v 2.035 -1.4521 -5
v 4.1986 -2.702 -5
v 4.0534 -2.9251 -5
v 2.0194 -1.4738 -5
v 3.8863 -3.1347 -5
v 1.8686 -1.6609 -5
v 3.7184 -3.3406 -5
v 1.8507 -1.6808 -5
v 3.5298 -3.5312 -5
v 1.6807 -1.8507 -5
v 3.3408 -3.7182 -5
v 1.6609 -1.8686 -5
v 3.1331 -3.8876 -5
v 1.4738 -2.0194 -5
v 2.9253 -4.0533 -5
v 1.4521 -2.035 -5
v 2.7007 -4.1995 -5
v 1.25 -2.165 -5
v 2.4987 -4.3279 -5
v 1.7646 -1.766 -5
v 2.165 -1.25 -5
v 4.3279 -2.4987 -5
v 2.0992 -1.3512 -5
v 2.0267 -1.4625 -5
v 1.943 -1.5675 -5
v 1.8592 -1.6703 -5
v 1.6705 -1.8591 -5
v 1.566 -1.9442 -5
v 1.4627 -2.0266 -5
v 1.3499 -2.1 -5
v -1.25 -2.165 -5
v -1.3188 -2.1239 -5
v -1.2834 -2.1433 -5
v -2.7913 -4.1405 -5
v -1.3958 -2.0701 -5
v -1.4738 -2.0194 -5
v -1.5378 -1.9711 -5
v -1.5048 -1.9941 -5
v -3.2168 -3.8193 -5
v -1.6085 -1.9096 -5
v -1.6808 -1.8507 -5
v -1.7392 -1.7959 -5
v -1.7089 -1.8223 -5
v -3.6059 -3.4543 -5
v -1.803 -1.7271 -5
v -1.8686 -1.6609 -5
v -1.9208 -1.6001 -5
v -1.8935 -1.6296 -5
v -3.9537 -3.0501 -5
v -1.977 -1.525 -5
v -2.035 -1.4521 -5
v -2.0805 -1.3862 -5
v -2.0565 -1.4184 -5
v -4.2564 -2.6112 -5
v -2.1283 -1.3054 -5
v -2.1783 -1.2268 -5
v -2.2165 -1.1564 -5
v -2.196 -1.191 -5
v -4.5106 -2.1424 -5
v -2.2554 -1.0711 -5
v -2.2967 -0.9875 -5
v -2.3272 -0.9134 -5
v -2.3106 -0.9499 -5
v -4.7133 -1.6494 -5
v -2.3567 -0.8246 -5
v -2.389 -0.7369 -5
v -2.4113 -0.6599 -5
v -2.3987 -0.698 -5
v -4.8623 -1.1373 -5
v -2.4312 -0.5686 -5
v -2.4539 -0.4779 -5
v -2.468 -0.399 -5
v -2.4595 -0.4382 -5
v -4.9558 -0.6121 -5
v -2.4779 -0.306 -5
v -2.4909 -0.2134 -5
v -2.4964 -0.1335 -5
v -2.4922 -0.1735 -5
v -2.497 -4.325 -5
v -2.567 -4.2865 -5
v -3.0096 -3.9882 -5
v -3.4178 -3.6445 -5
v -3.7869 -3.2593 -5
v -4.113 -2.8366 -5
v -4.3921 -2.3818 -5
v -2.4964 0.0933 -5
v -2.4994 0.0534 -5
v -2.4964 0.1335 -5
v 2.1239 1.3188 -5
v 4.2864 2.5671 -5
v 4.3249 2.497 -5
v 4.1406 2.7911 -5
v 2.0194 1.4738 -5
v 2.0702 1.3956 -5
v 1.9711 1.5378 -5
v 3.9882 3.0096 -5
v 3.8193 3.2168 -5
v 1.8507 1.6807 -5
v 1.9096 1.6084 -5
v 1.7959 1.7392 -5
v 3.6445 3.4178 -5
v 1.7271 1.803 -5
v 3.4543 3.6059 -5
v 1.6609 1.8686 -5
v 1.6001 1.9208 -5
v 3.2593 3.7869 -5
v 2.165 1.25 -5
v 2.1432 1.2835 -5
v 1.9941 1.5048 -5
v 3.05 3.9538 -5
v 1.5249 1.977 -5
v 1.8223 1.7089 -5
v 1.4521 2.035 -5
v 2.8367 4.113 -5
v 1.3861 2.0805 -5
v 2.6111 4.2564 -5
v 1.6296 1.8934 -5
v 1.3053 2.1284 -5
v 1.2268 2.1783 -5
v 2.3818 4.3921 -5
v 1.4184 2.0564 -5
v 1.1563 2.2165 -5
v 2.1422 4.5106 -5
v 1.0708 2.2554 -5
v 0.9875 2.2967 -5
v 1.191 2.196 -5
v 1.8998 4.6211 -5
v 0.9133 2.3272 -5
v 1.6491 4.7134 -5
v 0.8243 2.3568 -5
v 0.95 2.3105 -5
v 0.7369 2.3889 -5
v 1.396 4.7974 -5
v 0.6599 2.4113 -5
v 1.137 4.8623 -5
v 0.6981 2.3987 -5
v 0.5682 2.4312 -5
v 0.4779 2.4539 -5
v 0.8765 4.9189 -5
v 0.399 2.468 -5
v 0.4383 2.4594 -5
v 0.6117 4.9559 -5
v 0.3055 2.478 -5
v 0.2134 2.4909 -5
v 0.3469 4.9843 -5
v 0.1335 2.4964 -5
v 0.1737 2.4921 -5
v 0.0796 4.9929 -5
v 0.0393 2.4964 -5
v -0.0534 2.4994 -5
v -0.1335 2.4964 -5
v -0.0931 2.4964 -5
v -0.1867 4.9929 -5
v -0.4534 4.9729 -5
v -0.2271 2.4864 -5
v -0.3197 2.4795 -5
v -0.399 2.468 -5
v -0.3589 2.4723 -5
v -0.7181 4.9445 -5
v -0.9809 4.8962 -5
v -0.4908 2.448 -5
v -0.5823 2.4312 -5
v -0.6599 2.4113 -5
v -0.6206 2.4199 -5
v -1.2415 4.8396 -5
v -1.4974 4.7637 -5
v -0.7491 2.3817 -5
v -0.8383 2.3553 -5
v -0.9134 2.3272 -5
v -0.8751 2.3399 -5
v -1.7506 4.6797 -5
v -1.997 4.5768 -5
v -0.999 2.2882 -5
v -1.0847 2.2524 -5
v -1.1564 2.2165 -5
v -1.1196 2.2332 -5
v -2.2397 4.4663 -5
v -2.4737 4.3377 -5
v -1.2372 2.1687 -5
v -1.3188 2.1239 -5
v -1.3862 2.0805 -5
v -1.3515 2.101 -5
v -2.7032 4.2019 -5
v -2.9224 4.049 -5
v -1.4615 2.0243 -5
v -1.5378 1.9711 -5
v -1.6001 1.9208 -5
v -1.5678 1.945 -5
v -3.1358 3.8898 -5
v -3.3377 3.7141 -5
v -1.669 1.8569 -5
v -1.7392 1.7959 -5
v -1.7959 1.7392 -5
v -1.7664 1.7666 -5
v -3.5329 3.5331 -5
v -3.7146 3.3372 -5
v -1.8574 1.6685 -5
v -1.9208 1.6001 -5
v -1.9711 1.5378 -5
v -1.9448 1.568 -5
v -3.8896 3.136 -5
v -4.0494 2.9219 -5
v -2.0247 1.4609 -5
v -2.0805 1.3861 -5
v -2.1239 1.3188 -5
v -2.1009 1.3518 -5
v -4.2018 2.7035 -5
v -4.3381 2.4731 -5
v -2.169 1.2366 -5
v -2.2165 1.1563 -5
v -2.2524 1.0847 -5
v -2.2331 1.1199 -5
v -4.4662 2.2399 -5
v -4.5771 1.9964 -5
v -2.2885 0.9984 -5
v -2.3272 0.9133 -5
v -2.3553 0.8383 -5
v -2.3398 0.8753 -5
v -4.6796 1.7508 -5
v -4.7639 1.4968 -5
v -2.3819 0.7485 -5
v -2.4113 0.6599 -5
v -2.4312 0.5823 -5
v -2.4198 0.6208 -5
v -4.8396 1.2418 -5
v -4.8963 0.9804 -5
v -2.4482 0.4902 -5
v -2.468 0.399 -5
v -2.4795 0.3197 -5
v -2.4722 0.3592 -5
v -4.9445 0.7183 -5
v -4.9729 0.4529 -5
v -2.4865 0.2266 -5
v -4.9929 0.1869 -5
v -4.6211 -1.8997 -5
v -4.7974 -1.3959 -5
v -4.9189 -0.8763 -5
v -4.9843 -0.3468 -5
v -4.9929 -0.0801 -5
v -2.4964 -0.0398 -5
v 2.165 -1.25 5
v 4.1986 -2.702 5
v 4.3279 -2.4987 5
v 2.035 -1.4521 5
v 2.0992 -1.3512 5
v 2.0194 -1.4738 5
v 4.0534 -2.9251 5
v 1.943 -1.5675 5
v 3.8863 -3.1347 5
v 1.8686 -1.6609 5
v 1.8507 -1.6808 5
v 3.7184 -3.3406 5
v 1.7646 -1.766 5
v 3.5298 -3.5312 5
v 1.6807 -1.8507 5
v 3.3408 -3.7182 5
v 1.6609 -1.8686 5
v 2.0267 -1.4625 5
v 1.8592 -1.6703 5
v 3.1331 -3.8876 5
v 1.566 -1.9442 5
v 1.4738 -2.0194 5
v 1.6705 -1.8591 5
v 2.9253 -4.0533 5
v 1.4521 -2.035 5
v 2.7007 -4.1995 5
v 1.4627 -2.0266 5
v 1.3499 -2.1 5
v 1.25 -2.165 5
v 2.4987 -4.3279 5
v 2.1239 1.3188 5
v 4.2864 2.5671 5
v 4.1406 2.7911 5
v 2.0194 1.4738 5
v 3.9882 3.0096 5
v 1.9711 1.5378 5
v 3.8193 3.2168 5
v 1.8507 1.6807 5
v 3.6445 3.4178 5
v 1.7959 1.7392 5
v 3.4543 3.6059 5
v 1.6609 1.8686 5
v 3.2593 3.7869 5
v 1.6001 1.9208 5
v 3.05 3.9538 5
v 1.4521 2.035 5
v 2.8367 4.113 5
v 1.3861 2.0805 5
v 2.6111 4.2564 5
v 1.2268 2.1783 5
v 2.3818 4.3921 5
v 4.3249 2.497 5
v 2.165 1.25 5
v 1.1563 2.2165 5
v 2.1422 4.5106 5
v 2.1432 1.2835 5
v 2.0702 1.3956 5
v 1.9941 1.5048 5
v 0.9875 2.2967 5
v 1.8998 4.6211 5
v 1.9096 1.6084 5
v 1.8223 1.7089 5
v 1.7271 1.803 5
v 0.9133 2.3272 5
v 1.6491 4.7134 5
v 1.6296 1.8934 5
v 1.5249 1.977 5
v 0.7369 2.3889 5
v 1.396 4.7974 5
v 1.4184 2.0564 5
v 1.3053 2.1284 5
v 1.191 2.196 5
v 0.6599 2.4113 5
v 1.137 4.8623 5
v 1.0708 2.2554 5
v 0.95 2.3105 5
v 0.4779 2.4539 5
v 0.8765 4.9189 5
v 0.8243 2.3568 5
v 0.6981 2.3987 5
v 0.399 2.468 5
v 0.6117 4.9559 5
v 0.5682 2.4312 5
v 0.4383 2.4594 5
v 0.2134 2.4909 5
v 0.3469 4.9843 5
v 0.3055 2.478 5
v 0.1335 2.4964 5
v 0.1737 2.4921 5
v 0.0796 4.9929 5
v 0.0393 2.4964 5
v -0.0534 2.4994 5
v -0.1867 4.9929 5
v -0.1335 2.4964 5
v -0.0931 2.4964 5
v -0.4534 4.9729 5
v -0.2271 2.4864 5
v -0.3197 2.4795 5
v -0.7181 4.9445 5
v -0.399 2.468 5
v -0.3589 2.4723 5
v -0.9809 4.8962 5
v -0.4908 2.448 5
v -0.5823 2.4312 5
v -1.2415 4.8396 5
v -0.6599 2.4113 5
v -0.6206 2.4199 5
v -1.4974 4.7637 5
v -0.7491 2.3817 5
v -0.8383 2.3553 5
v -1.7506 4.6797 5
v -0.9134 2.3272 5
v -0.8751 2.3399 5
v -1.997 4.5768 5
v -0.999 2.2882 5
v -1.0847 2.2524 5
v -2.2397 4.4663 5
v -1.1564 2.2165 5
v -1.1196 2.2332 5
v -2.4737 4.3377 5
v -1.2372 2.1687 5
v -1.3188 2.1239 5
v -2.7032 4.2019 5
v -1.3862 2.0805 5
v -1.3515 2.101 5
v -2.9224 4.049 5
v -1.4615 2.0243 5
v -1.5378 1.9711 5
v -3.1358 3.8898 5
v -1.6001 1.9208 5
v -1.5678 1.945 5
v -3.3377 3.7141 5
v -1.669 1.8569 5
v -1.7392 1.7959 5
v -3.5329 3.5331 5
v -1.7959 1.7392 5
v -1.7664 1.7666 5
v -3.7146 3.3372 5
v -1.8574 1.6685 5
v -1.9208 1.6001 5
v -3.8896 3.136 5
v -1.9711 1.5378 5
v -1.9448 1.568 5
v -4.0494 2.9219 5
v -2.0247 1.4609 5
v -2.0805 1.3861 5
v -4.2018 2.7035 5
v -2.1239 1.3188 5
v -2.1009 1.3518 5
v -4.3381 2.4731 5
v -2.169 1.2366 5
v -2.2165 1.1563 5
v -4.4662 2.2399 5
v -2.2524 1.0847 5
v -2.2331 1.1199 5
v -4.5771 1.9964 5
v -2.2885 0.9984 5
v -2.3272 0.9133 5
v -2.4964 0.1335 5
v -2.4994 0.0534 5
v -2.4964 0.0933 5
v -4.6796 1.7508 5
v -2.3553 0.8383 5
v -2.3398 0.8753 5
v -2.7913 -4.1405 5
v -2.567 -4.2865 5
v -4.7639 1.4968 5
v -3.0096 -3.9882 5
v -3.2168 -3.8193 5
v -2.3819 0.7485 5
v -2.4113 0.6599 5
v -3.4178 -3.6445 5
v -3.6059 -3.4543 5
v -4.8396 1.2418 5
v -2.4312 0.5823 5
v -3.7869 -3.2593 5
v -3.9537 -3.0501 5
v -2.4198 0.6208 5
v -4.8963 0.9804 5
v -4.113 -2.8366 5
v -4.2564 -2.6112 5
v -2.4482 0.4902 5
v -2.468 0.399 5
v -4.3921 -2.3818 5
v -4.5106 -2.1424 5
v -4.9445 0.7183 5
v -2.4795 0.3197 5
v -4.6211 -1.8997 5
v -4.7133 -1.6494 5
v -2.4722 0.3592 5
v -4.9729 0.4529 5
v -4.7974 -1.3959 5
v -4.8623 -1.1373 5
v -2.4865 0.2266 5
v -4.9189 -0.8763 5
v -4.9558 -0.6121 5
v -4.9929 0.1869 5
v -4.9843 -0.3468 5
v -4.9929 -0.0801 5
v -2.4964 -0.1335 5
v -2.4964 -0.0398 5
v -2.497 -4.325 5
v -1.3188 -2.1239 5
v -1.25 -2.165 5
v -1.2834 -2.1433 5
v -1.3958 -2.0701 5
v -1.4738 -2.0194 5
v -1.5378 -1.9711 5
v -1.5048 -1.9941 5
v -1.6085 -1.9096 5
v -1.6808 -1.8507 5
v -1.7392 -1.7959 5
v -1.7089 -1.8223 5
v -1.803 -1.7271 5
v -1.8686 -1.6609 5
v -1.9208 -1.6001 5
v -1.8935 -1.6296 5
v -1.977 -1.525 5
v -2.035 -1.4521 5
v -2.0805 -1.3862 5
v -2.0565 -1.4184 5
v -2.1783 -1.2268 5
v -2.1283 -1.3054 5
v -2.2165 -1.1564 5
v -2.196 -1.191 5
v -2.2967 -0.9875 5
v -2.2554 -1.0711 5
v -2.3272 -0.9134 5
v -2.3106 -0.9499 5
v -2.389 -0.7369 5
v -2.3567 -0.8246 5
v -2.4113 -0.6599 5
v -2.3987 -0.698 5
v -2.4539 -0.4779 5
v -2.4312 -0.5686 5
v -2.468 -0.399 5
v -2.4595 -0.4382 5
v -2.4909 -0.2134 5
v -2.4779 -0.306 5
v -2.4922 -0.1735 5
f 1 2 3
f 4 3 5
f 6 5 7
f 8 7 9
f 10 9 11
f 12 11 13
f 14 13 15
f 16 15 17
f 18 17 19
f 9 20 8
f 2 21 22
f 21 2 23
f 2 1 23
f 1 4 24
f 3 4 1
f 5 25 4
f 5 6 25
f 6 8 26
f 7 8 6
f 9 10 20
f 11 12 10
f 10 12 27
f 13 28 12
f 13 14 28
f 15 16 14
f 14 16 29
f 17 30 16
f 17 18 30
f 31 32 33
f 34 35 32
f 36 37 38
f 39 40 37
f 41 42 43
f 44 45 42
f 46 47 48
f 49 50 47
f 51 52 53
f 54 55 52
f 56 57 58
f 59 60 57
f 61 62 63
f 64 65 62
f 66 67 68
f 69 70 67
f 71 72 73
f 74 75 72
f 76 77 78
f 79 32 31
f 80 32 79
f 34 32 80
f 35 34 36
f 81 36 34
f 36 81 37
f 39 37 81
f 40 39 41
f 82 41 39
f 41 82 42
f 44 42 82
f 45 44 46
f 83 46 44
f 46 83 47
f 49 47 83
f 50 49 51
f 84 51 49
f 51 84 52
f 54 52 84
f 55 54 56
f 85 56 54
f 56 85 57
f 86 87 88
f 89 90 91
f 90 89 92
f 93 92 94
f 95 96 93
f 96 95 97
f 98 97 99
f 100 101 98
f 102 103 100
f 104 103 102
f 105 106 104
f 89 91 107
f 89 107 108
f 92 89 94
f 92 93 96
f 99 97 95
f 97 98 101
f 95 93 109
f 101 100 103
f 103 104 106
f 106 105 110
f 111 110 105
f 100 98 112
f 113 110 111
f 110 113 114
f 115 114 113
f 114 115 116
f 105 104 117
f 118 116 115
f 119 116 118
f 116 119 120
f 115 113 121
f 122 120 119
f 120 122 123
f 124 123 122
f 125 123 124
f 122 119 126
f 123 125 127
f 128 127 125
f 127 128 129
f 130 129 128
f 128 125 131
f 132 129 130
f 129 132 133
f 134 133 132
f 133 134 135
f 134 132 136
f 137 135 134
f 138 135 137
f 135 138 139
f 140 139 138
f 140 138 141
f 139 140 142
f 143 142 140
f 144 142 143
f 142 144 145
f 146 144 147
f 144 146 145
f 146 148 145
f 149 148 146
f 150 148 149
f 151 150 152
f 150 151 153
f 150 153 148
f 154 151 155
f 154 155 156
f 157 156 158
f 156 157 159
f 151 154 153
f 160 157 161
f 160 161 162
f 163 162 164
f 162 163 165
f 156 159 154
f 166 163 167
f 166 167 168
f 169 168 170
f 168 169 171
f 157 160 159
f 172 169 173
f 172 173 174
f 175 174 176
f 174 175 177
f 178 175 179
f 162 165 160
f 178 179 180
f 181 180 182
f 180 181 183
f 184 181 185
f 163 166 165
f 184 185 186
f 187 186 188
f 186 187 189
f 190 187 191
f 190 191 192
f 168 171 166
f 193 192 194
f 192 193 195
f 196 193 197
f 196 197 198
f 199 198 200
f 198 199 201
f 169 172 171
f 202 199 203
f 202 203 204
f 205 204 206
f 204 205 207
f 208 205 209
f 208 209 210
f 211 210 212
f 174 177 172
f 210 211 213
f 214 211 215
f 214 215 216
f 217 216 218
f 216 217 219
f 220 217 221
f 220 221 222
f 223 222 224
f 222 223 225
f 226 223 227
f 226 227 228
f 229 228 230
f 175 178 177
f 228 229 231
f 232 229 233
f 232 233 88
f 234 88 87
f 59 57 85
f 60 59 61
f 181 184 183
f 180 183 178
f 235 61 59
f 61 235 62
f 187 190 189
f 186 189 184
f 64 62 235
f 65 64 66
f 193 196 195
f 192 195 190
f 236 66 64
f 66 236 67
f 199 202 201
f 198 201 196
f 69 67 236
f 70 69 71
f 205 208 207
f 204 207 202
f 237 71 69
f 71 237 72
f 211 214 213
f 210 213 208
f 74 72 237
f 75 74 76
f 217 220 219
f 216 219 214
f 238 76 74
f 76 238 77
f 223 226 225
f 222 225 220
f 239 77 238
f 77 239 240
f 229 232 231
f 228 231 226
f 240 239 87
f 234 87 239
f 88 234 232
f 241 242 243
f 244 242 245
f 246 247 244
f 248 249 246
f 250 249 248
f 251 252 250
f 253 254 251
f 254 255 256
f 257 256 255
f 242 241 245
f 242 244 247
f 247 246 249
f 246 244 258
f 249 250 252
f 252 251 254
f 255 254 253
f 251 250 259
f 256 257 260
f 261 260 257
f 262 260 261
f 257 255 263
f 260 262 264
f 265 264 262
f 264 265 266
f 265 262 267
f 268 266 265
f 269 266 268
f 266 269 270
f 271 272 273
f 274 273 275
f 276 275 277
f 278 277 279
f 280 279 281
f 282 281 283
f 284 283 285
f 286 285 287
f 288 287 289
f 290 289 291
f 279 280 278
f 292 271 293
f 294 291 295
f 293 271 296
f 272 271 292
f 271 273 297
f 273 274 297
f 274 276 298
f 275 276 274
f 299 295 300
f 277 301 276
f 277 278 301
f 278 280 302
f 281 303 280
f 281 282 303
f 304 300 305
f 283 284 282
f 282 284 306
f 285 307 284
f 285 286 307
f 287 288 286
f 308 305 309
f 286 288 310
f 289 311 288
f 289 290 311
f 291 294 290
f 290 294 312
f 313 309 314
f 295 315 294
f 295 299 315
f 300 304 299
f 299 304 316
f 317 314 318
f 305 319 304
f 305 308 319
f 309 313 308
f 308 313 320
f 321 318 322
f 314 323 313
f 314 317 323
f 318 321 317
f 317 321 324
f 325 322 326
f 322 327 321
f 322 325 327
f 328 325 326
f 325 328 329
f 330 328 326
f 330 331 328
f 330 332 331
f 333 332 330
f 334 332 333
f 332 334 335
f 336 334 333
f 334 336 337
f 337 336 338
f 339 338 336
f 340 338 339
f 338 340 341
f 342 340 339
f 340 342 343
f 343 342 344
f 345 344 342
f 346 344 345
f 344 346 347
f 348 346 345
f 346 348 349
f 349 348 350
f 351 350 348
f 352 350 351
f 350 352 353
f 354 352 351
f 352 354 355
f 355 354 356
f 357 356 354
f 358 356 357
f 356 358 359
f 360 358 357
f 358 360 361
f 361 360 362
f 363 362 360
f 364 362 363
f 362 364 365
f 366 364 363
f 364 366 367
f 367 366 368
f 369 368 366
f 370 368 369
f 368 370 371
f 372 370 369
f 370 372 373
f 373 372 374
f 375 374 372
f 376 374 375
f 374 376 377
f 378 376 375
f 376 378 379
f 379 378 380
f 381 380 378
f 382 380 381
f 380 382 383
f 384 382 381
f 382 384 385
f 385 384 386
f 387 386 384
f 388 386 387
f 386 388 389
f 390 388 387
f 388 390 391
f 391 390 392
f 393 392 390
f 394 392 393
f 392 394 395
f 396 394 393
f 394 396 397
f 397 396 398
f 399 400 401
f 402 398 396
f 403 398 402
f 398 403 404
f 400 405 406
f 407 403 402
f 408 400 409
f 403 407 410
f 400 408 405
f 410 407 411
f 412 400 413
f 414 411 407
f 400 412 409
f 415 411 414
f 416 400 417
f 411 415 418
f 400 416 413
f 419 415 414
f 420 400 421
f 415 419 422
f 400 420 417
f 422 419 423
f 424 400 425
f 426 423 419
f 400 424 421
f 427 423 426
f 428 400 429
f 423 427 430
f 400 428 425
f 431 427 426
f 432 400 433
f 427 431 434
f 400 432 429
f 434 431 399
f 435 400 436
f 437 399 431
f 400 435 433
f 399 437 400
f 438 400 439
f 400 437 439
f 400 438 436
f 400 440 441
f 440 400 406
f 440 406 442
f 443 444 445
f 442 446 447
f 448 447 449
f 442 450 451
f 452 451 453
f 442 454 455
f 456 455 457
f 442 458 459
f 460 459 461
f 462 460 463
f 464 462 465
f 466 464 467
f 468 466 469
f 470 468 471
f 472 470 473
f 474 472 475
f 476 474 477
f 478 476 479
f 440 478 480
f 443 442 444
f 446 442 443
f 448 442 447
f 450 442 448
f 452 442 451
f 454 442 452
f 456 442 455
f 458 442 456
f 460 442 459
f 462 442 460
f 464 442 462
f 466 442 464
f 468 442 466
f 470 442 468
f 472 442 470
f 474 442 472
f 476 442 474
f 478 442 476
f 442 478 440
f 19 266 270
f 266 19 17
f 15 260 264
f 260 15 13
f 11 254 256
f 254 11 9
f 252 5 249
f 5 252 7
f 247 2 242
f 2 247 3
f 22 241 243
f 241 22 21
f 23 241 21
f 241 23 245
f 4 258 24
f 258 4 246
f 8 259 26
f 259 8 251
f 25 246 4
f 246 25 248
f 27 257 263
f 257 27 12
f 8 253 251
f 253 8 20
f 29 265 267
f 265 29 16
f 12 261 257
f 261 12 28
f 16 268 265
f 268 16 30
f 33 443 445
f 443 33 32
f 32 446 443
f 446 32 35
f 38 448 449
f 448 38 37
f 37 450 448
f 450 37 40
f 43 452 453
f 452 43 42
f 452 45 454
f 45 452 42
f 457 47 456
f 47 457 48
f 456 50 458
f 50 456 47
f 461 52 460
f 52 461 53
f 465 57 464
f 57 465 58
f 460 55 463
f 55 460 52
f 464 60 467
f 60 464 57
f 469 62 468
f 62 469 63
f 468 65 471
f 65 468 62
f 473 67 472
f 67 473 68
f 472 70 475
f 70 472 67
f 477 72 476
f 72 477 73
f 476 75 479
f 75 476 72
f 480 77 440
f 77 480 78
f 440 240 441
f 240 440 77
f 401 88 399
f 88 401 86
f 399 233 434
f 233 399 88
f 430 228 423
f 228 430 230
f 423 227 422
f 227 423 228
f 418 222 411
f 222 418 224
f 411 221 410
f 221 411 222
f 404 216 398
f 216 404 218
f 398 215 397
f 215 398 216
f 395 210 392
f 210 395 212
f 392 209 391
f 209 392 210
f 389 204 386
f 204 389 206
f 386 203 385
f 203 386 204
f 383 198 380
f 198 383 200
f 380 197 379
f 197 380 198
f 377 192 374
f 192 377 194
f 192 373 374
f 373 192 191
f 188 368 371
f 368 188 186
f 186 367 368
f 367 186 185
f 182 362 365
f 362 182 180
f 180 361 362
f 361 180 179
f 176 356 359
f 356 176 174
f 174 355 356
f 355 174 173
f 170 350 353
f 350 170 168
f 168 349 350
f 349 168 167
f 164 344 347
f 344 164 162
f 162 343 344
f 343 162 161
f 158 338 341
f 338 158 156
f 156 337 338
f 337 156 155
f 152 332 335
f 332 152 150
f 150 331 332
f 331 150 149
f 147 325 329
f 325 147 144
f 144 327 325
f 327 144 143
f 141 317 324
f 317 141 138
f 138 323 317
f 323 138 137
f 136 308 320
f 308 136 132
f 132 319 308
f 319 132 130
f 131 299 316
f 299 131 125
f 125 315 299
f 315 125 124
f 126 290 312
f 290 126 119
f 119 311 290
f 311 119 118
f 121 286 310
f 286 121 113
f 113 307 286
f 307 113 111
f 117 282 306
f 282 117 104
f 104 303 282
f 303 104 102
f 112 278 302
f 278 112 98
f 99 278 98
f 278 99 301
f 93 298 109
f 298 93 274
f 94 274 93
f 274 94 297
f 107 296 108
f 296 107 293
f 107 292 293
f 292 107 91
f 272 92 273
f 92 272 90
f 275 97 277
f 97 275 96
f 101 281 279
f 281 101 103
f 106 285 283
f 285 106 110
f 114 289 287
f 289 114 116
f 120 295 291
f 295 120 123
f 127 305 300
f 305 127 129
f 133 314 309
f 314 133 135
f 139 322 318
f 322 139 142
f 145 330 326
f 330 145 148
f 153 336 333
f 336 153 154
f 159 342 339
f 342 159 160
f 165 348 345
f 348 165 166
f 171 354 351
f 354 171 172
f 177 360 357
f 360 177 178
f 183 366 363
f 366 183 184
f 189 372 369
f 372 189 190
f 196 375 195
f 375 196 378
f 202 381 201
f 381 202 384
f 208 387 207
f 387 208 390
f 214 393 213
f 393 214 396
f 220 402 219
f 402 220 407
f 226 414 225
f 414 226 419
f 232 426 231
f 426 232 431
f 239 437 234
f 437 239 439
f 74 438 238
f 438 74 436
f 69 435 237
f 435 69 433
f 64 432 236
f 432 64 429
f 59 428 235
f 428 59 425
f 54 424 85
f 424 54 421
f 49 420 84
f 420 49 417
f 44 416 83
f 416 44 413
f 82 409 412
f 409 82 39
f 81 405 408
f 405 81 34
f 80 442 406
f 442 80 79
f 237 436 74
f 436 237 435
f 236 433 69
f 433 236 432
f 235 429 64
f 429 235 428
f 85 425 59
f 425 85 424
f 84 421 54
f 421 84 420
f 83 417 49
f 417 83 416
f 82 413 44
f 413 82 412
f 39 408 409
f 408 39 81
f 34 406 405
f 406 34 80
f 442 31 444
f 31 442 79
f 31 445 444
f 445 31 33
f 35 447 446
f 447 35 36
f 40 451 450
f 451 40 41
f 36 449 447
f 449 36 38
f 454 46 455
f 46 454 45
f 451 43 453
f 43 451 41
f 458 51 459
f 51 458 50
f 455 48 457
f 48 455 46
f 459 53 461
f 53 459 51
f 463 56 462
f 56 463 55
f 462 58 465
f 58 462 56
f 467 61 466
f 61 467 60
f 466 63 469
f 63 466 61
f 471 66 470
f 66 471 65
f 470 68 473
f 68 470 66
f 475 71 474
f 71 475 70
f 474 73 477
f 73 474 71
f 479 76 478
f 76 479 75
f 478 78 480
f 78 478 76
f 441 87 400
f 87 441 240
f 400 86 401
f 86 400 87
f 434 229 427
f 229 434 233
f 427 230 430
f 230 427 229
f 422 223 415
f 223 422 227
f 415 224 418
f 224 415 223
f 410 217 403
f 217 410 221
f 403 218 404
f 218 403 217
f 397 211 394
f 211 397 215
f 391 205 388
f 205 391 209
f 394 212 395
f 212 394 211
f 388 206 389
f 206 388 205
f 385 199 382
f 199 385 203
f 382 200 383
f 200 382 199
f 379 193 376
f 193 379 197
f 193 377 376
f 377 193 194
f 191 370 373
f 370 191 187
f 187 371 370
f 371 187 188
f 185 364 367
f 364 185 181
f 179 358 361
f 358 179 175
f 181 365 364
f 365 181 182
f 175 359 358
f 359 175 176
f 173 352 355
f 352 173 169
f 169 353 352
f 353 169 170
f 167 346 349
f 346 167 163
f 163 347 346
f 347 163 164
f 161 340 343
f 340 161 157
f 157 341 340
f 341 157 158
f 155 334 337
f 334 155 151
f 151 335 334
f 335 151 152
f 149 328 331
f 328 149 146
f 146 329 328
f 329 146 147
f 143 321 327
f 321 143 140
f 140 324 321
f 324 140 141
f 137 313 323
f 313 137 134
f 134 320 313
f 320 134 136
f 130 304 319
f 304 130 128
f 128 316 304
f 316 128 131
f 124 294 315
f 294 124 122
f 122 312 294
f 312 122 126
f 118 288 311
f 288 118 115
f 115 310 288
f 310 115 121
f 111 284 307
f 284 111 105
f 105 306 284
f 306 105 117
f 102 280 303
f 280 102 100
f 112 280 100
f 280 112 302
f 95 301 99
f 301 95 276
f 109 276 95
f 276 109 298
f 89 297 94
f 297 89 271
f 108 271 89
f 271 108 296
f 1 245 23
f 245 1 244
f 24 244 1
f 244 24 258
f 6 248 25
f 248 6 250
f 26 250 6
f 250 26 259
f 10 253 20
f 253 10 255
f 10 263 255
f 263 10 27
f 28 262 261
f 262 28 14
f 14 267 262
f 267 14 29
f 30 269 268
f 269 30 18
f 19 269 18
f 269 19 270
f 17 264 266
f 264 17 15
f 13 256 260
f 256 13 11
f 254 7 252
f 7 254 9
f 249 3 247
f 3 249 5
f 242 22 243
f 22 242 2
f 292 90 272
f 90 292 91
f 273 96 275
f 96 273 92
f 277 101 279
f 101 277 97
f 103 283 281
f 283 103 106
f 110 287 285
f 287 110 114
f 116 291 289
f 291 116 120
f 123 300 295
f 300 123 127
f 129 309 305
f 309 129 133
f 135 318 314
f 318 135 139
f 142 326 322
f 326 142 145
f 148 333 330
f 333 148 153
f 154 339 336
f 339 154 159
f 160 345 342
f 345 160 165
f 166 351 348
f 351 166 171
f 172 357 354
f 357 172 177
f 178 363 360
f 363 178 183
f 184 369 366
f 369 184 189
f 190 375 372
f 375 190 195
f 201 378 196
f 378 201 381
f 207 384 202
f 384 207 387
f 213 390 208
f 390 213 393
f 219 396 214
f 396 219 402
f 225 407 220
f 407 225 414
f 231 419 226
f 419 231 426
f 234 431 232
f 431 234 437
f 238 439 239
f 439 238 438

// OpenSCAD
// Generated by SolidPython 1.1.3 on 2025-02-20 04:03:53
$fn=50;


intersection() {
	translate(v = [-5.0000000000, -5.0000000000, -5.0000000000]) {
		linear_extrude(height = 10) {
			polygon(points = [[9.3301270189, 7.5000000000], [9.0387948484, 7.9475644476], [8.7013899854, 8.3615044513], [8.3217613875, 8.7370979763], [7.9042396813, 9.0700604263], [7.4535877600, 9.3565935206], [6.9749464512, 9.5934286231], [6.4737758721, 9.7778640289], [5.9557931435, 9.9077957850], [5.4269071715, 9.9817416901], [4.8931512411, 9.9988582039], [4.3606141916, 9.9589500691], [3.8353709579, 9.8624725392], [3.3234132705, 9.7105261849], [2.8305813044, 9.5048443395], [2.3624970575, 9.2477733259], [1.9245002169, 8.9422456905], [1.5215872470, 8.5917467505], [1.1583543913, 8.2002748347], [0.8389452414, 7.7722956725], [0.5670034681, 7.3126914512], [0.3456312568, 6.8267051218], [0.1773539185, 6.3198805903], [0.0640910829, 5.7979994752], [0.0071347997, 5.2670151533], [0.0071347997, 4.7329848467], [0.0640910829, 4.2020005248], [0.1773539185, 3.6801194097], [0.3456312568, 3.1732948782], [0.5670034681, 2.6873085488], [0.8389452414, 2.2277043275], [1.1583543913, 1.7997251653], [1.5215872470, 1.4082532495], [1.9245002169, 1.0577543095], [2.3624970575, 0.7522266741], [2.8305813044, 0.4951556605], [3.3234132705, 0.2894738151], [3.8353709579, 0.1375274608], [4.3606141916, 0.0410499309], [4.8931512411, 0.0011417961], [5.4269071715, 0.0182583099], [5.9557931435, 0.0922042150], [6.4737758721, 0.2221359711], [6.9749464512, 0.4065713769], [7.4535877600, 0.6434064794], [7.9042396813, 0.9299395737], [8.3217613875, 1.2629020237], [8.7013899854, 1.6384955487], [9.0387948484, 2.0524355524], [9.3301270189, 2.5000000000], [7.1650635095, 3.7500000000], [7.0193974242, 3.5262177762], [6.8506949927, 3.3192477743], [6.6608806938, 3.1314510119], [6.4521198406, 2.9649697869], [6.2267938800, 2.8217032397], [5.9874732256, 2.7032856885], [5.7368879360, 2.6110679855], [5.4778965718, 2.5461021075], [5.2134535857, 2.5091291549], [4.9465756205, 2.5005708980], [4.6803070958, 2.5205249654], [4.4176854790, 2.5687637304], [4.1617066352, 2.6447369076], [3.9152906522, 2.7475778302], [3.6812485287, 2.8761133371], [3.4622501085, 3.0288771547], [3.2607936235, 3.2041266248], [3.0791771957, 3.3998625827], [2.9194726207, 3.6138521637], [2.7835017341, 3.8436542744], [2.6728156284, 4.0866474391], [2.5886769593, 4.3400597048], [2.5320455415, 4.6010002624], [2.5035673999, 4.8664924234], [2.5035673999, 5.1335075766], [2.5320455415, 5.3989997376], [2.5886769593, 5.6599402952], [2.6728156284, 5.9133525609], [2.7835017341, 6.1563457256], [2.9194726207, 6.3861478363], [3.0791771957, 6.6001374173], [3.2607936235, 6.7958733752], [3.4622501085, 6.9711228453], [3.6812485287, 7.1238866629], [3.9152906522, 7.2524221698], [4.1617066352, 7.3552630924], [4.4176854790, 7.4312362696], [4.6803070958, 7.4794750346], [4.9465756205, 7.4994291020], [5.2134535857, 7.4908708451], [5.4778965718, 7.4538978925], [5.7368879360, 7.3889320145], [5.9874732256, 7.2967143115], [6.2267938800, 7.1782967603], [6.4521198406, 7.0350302131], [6.6608806938, 6.8685489881], [6.8506949927, 6.6807522257], [7.0193974242, 6.4737822238], [7.1650635095, 6.2500000000]]);
		}
	}
	rotate(a = -90, v = [0, 0, 1]) {
		translate(v = [-5.0000000000, -5.0000000000, -5.0000000000]) {
			linear_extrude(height = 10) {
				polygon(points = [[9.3301270189, 7.5000000000], [9.0387948484, 7.9475644476], [8.7013899854, 8.3615044513], [8.3217613875, 8.7370979763], [7.9042396813, 9.0700604263], [7.4535877600, 9.3565935206], [6.9749464512, 9.5934286231], [6.4737758721, 9.7778640289], [5.9557931435, 9.9077957850], [5.4269071715, 9.9817416901], [4.8931512411, 9.9988582039], [4.3606141916, 9.9589500691], [3.8353709579, 9.8624725392], [3.3234132705, 9.7105261849], [2.8305813044, 9.5048443395], [2.3624970575, 9.2477733259], [1.9245002169, 8.9422456905], [1.5215872470, 8.5917467505], [1.1583543913, 8.2002748347], [0.8389452414, 7.7722956725], [0.5670034681, 7.3126914512], [0.3456312568, 6.8267051218], [0.1773539185, 6.3198805903], [0.0640910829, 5.7979994752], [0.0071347997, 5.2670151533], [0.0071347997, 4.7329848467], [0.0640910829, 4.2020005248], [0.1773539185, 3.6801194097], [0.3456312568, 3.1732948782], [0.5670034681, 2.6873085488], [0.8389452414, 2.2277043275], [1.1583543913, 1.7997251653], [1.5215872470, 1.4082532495], [1.9245002169, 1.0577543095], [2.3624970575, 0.7522266741], [2.8305813044, 0.4951556605], [3.3234132705, 0.2894738151], [3.8353709579, 0.1375274608], [4.3606141916, 0.0410499309], [4.8931512411, 0.0011417961], [5.4269071715, 0.0182583099], [5.9557931435, 0.0922042150], [6.4737758721, 0.2221359711], [6.9749464512, 0.4065713769], [7.4535877600, 0.6434064794], [7.9042396813, 0.9299395737], [8.3217613875, 1.2629020237], [8.7013899854, 1.6384955487], [9.0387948484, 2.0524355524], [9.3301270189, 2.5000000000], [7.1650635095, 3.7500000000], [7.0193974242, 3.5262177762], [6.8506949927, 3.3192477743], [6.6608806938, 3.1314510119], [6.4521198406, 2.9649697869], [6.2267938800, 2.8217032397], [5.9874732256, 2.7032856885], [5.7368879360, 2.6110679855], [5.4778965718, 2.5461021075], [5.2134535857, 2.5091291549], [4.9465756205, 2.5005708980], [4.6803070958, 2.5205249654], [4.4176854790, 2.5687637304], [4.1617066352, 2.6447369076], [3.9152906522, 2.7475778302], [3.6812485287, 2.8761133371], [3.4622501085, 3.0288771547], [3.2607936235, 3.2041266248], [3.0791771957, 3.3998625827], [2.9194726207, 3.6138521637], [2.7835017341, 3.8436542744], [2.6728156284, 4.0866474391], [2.5886769593, 4.3400597048], [2.5320455415, 4.6010002624], [2.5035673999, 4.8664924234], [2.5035673999, 5.1335075766], [2.5320455415, 5.3989997376], [2.5886769593, 5.6599402952], [2.6728156284, 5.9133525609], [2.7835017341, 6.1563457256], [2.9194726207, 6.3861478363], [3.0791771957, 6.6001374173], [3.2607936235, 6.7958733752], [3.4622501085, 6.9711228453], [3.6812485287, 7.1238866629], [3.9152906522, 7.2524221698], [4.1617066352, 7.3552630924], [4.4176854790, 7.4312362696], [4.6803070958, 7.4794750346], [4.9465756205, 7.4994291020], [5.2134535857, 7.4908708451], [5.4778965718, 7.4538978925], [5.7368879360, 7.3889320145], [5.9874732256, 7.2967143115], [6.2267938800, 7.1782967603], [6.4521198406, 7.0350302131], [6.6608806938, 6.8685489881], [6.8506949927, 6.6807522257], [7.0193974242, 6.4737822238], [7.1650635095, 6.2500000000]]);
			}
		}
	}
}
/***********************************************
*********      SolidPython code:      **********
************************************************
 
from solid import *
from solid.utils import *

import math
import matplotlib.pyplot as plt
import subprocess
import os

class Hole:
    def __init__(self, x, y, radius):
        """
        Hole defined by:
        :param x: x dimension for center point of the circle as a ratio of letter height
        :param y: y dimension for center point of the circle as a ratio of letter height
        :param radius: radius of circle as a ratio of letter height
        """
        self.x = x
        self.y = y
        self.radius = radius

class Letter3D:
    def __init__(self, name, outer_shape_points, height, holes=None):
        """
        3D Letter defined by:
        :param name: name of letter
        :param outer_shape_points: points defining the outer shape of the letter
        :param heigh: size of cube that letter fits inside
        :param holes: list of Holes
        """
        self.name = name
        self.outer_shape_points = outer_shape_points
        self.holes = holes if holes is None else []
        self.height = height


    def generate(self):
        shape = polygon(points=self.outer_shape_points)

        if self.holes:
            for hole in self.holes:
                circle_hole = circle(r=hole.radius*self.height)
                positioned_hole = translate([hole.x*self.height, hole.y*self.height])(circle_hole)
                shape = difference()(shape, positioned_hole)
        
        shape_3d = linear_extrude(height=self.height)(shape)
        shape_3d = translate([-self.height/2, -self.height/2, -self.height/2])(shape_3d)
        return shape_3d
    
    def render(self):
        scad_render_to_file(self.shape, f"output/{self.name}.scad", file_header='$fn=50;')
        subprocess.run(["C:\\Program Files\\OpenSCAD\\openscad.exe", "-o", f"output\\{self.name}.stl", f"output\\{self.name}.scad"])


class TwoLetter3D:
    def __init__(self, height, letterA, letterA_face, letterB=None, letterB_face=None):
        self.height = height
        self.letterA = letterA
        self.letterB = letterB
        self.letterA_face = letterA_face
        self.letterB_face = letterB_face

    def call_letter_generation(self, letter):
        letter = letter.upper()
        function_name = f"letter_{letter}"
        func = globals().get(function_name)
        if func is None:
            raise ValueError(f"No letter generation function defined for letter '{letter}'.")
        else:
            print(func)
        return func(self.height)
    
    def rotate_object(self, face, shape):
        face = face.lower()
        if face == "z":
            return shape
        if face == "x":
            return rotate(a=90, v=[0,1,0])(shape)
        if face == "y":
            return rotate(a=-90, v=[0,0,1])(shape)
        else:
            raise ValueError("Face must be one of 'x', 'y', or 'z'.")

    def render(self):
        if self.letterA:
            letterA3D = self.call_letter_generation(self.letterA)
            letterA3D = self.rotate_object(self.letterA_face, letterA3D)

        if self.letterB:
            letterB3D = self.call_letter_generation(self.letterB)
            letterB3D = self.rotate_object(self.letterB_face, letterB3D)
            combined = intersection()(letterA3D, letterB3D)
            file_name = self.letterA + self.letterB
            scad_render_to_file(combined, f"output/{file_name}.scad", file_header='$fn=50;')
            subprocess.run(["C:\\Program Files\\OpenSCAD\\openscad.exe", "-o", f"output\\{file_name}.stl", f"output\\{file_name}.scad"])
            return
        else:
            file_name = self.letterA
            scad_render_to_file(letterA3D, f"output/{file_name}.scad", file_header='$fn=50;')
            subprocess.run(["C:\\Program Files\\OpenSCAD\\openscad.exe", "-o", f"output\\{file_name}.stl", f"output\\{file_name}.scad"])
    
                

def arc_points(radius, start_angle, end_angle, center=[0,0], num_points=50):
    angles = [start_angle + i * (end_angle - start_angle) / (num_points - 1)
              for i in range(num_points)]
    points = [
        (center[0] + radius * math.cos(math.radians(angle)),
         center[1] + radius * math.sin(math.radians(angle)))
        for angle in angles
    ]
    return points

def letter_A(h):
    shape_points = [(0,0), (h/2, h), (h, 0), (5/6*h, 0), (2/3*h, 1/3*h), (1/3*h, 1/3*h), (h/6, 0)]
    holes = [Hole(1/2, 7/12, 1/6)]
    A = Letter3D("A", shape_points, h, holes)
    return A.generate()

def letter_B(h):
    top_arc_points = arc_points(h/4, 90, -90, center=[3/4*h, 3/4*h])
    bottom_arc_points = arc_points(h/4, 90, -90, center=[3/4*h, h/4])
    other_points = [(0,0),(0,h)]

    shape_points = top_arc_points + bottom_arc_points + other_points
    holes = [Hole(1/2, 3/4, 1/6), Hole(1/2, 1/4, 1/6)]
    B = Letter3D("B", shape_points, h, holes)
    return B.generate()

def letter_C(h):
    outer_arc_points = arc_points(h/2, 30, 330, center=[h/2,h/2])
    inner_arc_points = arc_points(h/4, 30, 330, center=[h/2,h/2])[::-1]
    shape_points = outer_arc_points + inner_arc_points
    # print(shape_points)
    C = Letter3D("C", shape_points, h)
    return C.generate()


def letter_D(h):
    outer_arc_points = arc_points(h/2, 90, -90, center= [h/2, h/2])
    shape_points = outer_arc_points + [(0,0), (0, h)]
    holes = [Hole(1/2, 1/2, 1/6)]
    D = Letter3D("D", shape_points, h, holes)
    return D.generate()

def letter_E(h):
    points = [(0,0), (h,0), (h,h/5), (h/5,h/5), (h/5,2/5*h), (3/4*h,2/5*h), (3/4*h,3/5*h), (h/5,3/5*h), (h/5,4/5*h), (h,4/5*h), (h,h), (0,h)]
    E = Letter3D("E", points, h)
    return E.generate()

def letter_F(h):
    points = [(0,0), (h/5,0), (h/5,2/5*h), (3/4*h,2/5*h), (3/4*h,3/5*h), (h/5,3/5*h), (h/5,4/5*h), (h,4/5*h), (h,h), (0,h)]
    F = Letter3D("F", points, h)
    return F.generate()

if __name__ == "__main__":
    os.makedirs("output", exist_ok=True)

    letters = [chr(x) for x in range(ord('A'), ord('F') + 1)]
    for letter in letters:
        for other_letter in letters:
            shape = TwoLetter3D(10, letter, "z", other_letter, "y")
            shape.render()
 
 
************************************************/
